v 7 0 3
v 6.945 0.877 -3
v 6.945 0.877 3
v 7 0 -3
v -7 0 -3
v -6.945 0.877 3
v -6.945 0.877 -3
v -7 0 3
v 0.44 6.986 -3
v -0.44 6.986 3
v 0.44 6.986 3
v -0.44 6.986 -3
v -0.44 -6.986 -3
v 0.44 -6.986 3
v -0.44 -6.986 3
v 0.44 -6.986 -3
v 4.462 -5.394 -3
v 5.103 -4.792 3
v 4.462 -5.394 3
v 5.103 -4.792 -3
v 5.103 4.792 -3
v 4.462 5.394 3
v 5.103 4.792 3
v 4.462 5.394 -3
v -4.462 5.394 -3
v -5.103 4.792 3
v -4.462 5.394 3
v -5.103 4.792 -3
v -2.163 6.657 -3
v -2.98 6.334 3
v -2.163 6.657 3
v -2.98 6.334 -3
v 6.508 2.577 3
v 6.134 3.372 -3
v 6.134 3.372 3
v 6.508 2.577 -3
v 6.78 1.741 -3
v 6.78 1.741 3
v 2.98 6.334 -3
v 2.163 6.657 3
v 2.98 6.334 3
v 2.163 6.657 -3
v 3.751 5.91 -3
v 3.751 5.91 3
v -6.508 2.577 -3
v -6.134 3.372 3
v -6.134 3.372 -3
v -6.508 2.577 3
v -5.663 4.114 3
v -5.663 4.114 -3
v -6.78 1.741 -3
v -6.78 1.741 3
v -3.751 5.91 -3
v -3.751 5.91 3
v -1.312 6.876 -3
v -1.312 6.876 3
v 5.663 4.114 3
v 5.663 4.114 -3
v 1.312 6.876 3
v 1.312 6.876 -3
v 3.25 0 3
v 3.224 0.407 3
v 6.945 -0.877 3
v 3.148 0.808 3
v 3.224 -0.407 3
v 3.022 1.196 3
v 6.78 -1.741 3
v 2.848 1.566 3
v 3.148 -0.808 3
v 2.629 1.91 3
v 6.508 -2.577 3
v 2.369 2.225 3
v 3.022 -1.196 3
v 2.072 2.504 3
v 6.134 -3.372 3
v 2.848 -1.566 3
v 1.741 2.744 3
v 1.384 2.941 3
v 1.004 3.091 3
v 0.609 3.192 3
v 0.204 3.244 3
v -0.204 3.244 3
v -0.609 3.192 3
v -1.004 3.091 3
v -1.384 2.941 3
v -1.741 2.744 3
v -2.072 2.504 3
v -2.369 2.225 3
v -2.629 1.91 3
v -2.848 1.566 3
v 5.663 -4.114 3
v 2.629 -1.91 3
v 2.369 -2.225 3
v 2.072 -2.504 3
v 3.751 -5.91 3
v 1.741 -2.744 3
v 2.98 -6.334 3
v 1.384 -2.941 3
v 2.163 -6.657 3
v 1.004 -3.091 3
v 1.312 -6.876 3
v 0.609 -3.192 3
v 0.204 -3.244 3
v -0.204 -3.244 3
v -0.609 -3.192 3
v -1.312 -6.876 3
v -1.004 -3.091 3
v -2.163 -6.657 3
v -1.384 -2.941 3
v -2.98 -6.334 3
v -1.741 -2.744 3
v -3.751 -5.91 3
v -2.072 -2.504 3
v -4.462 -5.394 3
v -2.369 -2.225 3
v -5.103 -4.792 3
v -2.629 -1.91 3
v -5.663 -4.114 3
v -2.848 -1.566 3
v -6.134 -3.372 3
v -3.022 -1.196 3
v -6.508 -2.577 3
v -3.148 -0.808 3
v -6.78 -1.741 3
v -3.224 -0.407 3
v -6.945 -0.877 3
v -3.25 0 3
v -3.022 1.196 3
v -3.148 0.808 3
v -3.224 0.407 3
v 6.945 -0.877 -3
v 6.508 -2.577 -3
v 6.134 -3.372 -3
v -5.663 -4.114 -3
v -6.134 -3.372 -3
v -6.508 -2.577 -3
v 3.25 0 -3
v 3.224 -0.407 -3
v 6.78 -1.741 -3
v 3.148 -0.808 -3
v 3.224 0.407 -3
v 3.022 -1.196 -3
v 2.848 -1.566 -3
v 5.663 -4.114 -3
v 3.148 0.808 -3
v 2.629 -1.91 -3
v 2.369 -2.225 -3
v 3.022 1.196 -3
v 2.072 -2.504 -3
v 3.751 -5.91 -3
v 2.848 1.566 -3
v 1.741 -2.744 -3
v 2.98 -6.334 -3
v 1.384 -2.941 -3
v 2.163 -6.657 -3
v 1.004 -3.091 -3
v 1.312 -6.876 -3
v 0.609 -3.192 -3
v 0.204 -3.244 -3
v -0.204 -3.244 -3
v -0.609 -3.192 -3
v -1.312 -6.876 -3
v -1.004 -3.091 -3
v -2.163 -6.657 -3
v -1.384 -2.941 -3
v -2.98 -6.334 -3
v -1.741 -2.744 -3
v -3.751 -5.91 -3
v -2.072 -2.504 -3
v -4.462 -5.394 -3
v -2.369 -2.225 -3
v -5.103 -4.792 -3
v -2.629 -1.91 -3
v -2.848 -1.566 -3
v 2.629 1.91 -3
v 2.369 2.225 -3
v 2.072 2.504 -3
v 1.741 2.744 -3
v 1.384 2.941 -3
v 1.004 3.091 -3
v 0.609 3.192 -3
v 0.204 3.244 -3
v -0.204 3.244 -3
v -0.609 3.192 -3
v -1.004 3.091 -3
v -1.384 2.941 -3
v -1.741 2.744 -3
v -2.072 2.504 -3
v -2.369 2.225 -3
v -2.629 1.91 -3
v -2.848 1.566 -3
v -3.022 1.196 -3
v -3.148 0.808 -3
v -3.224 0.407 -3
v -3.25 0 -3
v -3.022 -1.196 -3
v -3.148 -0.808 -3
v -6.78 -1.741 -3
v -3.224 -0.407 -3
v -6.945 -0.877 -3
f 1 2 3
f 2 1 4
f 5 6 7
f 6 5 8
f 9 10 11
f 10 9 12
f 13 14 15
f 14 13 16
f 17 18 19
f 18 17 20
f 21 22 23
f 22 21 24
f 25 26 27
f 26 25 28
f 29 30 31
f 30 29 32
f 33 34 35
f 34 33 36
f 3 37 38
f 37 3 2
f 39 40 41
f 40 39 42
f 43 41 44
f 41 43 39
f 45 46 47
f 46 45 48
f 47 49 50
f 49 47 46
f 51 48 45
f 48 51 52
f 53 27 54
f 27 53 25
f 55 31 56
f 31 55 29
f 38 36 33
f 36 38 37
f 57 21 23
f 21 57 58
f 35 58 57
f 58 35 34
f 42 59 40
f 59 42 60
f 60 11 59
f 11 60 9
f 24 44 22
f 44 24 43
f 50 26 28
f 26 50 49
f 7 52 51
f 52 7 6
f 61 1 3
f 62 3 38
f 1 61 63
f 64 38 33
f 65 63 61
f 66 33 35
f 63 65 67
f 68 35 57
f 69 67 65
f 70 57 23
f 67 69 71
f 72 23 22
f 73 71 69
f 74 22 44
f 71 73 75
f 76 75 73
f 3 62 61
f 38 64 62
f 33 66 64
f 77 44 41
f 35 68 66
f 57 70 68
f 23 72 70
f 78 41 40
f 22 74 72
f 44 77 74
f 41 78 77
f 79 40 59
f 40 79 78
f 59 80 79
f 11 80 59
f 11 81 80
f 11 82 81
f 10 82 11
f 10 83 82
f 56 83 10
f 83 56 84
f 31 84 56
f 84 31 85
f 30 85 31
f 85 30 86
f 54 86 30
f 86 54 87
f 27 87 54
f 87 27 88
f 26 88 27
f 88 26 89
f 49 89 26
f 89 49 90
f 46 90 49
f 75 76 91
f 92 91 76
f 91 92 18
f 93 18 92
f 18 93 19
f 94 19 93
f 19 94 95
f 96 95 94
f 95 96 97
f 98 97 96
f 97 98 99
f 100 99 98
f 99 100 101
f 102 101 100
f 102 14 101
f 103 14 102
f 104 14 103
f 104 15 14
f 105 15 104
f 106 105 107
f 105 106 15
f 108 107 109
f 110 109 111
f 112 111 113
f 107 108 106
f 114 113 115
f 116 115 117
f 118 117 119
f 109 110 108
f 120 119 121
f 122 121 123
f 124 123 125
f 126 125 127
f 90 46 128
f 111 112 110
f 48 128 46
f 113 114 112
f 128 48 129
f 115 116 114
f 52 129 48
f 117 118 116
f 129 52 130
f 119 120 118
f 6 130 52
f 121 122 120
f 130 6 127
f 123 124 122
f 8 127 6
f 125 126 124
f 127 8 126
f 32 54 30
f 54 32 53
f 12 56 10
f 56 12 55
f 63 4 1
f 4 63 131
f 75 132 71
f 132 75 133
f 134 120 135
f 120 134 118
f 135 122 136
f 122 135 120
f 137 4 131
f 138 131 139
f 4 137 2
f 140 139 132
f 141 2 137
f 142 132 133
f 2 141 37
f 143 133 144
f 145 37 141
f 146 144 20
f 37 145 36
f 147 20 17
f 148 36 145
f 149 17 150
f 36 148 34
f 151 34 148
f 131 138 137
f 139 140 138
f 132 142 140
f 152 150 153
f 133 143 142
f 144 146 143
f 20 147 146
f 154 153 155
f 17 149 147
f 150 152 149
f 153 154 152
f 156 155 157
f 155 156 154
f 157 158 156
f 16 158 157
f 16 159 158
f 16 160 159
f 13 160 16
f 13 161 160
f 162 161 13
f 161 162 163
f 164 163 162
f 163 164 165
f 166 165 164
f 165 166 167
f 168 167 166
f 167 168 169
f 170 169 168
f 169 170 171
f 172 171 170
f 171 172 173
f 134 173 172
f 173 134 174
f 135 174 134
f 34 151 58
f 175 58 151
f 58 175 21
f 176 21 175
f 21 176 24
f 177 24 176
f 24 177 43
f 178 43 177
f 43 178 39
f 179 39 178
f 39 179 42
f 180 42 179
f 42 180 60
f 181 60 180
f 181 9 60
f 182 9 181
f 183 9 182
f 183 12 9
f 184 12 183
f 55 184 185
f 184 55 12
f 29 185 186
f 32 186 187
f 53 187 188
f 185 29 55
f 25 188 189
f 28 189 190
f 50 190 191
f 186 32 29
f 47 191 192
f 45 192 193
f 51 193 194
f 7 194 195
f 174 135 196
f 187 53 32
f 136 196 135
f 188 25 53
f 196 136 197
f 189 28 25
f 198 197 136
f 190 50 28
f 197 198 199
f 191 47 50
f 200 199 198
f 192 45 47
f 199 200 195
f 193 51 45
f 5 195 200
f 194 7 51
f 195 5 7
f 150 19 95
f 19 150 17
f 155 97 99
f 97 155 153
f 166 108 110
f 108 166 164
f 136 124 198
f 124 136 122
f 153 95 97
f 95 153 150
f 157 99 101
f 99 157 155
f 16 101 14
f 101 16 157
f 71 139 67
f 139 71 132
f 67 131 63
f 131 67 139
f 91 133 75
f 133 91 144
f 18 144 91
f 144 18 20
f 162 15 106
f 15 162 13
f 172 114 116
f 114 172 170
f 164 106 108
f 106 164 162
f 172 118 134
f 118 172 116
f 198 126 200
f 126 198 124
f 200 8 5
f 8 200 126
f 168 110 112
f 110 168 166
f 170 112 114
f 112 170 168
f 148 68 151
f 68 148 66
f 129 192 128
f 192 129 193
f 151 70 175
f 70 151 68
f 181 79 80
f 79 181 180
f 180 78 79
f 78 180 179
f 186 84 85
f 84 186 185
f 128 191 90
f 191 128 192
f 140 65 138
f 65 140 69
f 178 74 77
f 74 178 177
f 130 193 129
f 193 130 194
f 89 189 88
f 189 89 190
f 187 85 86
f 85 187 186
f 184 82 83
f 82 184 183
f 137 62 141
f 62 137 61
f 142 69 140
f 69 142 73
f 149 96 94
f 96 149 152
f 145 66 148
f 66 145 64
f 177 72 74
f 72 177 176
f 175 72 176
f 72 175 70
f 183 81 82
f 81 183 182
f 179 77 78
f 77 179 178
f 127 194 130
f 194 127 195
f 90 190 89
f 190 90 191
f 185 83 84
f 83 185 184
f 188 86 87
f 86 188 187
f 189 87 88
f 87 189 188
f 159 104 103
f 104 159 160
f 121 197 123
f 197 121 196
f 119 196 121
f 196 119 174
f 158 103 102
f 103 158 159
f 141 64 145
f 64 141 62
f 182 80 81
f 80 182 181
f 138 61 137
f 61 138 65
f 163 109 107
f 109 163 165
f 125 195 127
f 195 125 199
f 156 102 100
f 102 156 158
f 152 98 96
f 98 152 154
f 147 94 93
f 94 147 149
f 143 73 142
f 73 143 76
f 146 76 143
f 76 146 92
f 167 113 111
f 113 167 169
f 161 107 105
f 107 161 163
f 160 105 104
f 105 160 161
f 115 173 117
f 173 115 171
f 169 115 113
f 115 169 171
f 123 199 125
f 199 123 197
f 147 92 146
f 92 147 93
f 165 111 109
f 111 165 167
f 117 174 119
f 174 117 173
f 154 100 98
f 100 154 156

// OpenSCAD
$fn = 50;


difference() {
	union() {
		translate(v = [0, 0, -3.0000000000]) {
			cylinder(h = 6, r = 7.0000000000);
		}
	}
	union() {
		translate(v = [0, 0, -100.0000000000]) {
			cylinder(h = 200, r = 3.2500000000);
		}
	}
}
